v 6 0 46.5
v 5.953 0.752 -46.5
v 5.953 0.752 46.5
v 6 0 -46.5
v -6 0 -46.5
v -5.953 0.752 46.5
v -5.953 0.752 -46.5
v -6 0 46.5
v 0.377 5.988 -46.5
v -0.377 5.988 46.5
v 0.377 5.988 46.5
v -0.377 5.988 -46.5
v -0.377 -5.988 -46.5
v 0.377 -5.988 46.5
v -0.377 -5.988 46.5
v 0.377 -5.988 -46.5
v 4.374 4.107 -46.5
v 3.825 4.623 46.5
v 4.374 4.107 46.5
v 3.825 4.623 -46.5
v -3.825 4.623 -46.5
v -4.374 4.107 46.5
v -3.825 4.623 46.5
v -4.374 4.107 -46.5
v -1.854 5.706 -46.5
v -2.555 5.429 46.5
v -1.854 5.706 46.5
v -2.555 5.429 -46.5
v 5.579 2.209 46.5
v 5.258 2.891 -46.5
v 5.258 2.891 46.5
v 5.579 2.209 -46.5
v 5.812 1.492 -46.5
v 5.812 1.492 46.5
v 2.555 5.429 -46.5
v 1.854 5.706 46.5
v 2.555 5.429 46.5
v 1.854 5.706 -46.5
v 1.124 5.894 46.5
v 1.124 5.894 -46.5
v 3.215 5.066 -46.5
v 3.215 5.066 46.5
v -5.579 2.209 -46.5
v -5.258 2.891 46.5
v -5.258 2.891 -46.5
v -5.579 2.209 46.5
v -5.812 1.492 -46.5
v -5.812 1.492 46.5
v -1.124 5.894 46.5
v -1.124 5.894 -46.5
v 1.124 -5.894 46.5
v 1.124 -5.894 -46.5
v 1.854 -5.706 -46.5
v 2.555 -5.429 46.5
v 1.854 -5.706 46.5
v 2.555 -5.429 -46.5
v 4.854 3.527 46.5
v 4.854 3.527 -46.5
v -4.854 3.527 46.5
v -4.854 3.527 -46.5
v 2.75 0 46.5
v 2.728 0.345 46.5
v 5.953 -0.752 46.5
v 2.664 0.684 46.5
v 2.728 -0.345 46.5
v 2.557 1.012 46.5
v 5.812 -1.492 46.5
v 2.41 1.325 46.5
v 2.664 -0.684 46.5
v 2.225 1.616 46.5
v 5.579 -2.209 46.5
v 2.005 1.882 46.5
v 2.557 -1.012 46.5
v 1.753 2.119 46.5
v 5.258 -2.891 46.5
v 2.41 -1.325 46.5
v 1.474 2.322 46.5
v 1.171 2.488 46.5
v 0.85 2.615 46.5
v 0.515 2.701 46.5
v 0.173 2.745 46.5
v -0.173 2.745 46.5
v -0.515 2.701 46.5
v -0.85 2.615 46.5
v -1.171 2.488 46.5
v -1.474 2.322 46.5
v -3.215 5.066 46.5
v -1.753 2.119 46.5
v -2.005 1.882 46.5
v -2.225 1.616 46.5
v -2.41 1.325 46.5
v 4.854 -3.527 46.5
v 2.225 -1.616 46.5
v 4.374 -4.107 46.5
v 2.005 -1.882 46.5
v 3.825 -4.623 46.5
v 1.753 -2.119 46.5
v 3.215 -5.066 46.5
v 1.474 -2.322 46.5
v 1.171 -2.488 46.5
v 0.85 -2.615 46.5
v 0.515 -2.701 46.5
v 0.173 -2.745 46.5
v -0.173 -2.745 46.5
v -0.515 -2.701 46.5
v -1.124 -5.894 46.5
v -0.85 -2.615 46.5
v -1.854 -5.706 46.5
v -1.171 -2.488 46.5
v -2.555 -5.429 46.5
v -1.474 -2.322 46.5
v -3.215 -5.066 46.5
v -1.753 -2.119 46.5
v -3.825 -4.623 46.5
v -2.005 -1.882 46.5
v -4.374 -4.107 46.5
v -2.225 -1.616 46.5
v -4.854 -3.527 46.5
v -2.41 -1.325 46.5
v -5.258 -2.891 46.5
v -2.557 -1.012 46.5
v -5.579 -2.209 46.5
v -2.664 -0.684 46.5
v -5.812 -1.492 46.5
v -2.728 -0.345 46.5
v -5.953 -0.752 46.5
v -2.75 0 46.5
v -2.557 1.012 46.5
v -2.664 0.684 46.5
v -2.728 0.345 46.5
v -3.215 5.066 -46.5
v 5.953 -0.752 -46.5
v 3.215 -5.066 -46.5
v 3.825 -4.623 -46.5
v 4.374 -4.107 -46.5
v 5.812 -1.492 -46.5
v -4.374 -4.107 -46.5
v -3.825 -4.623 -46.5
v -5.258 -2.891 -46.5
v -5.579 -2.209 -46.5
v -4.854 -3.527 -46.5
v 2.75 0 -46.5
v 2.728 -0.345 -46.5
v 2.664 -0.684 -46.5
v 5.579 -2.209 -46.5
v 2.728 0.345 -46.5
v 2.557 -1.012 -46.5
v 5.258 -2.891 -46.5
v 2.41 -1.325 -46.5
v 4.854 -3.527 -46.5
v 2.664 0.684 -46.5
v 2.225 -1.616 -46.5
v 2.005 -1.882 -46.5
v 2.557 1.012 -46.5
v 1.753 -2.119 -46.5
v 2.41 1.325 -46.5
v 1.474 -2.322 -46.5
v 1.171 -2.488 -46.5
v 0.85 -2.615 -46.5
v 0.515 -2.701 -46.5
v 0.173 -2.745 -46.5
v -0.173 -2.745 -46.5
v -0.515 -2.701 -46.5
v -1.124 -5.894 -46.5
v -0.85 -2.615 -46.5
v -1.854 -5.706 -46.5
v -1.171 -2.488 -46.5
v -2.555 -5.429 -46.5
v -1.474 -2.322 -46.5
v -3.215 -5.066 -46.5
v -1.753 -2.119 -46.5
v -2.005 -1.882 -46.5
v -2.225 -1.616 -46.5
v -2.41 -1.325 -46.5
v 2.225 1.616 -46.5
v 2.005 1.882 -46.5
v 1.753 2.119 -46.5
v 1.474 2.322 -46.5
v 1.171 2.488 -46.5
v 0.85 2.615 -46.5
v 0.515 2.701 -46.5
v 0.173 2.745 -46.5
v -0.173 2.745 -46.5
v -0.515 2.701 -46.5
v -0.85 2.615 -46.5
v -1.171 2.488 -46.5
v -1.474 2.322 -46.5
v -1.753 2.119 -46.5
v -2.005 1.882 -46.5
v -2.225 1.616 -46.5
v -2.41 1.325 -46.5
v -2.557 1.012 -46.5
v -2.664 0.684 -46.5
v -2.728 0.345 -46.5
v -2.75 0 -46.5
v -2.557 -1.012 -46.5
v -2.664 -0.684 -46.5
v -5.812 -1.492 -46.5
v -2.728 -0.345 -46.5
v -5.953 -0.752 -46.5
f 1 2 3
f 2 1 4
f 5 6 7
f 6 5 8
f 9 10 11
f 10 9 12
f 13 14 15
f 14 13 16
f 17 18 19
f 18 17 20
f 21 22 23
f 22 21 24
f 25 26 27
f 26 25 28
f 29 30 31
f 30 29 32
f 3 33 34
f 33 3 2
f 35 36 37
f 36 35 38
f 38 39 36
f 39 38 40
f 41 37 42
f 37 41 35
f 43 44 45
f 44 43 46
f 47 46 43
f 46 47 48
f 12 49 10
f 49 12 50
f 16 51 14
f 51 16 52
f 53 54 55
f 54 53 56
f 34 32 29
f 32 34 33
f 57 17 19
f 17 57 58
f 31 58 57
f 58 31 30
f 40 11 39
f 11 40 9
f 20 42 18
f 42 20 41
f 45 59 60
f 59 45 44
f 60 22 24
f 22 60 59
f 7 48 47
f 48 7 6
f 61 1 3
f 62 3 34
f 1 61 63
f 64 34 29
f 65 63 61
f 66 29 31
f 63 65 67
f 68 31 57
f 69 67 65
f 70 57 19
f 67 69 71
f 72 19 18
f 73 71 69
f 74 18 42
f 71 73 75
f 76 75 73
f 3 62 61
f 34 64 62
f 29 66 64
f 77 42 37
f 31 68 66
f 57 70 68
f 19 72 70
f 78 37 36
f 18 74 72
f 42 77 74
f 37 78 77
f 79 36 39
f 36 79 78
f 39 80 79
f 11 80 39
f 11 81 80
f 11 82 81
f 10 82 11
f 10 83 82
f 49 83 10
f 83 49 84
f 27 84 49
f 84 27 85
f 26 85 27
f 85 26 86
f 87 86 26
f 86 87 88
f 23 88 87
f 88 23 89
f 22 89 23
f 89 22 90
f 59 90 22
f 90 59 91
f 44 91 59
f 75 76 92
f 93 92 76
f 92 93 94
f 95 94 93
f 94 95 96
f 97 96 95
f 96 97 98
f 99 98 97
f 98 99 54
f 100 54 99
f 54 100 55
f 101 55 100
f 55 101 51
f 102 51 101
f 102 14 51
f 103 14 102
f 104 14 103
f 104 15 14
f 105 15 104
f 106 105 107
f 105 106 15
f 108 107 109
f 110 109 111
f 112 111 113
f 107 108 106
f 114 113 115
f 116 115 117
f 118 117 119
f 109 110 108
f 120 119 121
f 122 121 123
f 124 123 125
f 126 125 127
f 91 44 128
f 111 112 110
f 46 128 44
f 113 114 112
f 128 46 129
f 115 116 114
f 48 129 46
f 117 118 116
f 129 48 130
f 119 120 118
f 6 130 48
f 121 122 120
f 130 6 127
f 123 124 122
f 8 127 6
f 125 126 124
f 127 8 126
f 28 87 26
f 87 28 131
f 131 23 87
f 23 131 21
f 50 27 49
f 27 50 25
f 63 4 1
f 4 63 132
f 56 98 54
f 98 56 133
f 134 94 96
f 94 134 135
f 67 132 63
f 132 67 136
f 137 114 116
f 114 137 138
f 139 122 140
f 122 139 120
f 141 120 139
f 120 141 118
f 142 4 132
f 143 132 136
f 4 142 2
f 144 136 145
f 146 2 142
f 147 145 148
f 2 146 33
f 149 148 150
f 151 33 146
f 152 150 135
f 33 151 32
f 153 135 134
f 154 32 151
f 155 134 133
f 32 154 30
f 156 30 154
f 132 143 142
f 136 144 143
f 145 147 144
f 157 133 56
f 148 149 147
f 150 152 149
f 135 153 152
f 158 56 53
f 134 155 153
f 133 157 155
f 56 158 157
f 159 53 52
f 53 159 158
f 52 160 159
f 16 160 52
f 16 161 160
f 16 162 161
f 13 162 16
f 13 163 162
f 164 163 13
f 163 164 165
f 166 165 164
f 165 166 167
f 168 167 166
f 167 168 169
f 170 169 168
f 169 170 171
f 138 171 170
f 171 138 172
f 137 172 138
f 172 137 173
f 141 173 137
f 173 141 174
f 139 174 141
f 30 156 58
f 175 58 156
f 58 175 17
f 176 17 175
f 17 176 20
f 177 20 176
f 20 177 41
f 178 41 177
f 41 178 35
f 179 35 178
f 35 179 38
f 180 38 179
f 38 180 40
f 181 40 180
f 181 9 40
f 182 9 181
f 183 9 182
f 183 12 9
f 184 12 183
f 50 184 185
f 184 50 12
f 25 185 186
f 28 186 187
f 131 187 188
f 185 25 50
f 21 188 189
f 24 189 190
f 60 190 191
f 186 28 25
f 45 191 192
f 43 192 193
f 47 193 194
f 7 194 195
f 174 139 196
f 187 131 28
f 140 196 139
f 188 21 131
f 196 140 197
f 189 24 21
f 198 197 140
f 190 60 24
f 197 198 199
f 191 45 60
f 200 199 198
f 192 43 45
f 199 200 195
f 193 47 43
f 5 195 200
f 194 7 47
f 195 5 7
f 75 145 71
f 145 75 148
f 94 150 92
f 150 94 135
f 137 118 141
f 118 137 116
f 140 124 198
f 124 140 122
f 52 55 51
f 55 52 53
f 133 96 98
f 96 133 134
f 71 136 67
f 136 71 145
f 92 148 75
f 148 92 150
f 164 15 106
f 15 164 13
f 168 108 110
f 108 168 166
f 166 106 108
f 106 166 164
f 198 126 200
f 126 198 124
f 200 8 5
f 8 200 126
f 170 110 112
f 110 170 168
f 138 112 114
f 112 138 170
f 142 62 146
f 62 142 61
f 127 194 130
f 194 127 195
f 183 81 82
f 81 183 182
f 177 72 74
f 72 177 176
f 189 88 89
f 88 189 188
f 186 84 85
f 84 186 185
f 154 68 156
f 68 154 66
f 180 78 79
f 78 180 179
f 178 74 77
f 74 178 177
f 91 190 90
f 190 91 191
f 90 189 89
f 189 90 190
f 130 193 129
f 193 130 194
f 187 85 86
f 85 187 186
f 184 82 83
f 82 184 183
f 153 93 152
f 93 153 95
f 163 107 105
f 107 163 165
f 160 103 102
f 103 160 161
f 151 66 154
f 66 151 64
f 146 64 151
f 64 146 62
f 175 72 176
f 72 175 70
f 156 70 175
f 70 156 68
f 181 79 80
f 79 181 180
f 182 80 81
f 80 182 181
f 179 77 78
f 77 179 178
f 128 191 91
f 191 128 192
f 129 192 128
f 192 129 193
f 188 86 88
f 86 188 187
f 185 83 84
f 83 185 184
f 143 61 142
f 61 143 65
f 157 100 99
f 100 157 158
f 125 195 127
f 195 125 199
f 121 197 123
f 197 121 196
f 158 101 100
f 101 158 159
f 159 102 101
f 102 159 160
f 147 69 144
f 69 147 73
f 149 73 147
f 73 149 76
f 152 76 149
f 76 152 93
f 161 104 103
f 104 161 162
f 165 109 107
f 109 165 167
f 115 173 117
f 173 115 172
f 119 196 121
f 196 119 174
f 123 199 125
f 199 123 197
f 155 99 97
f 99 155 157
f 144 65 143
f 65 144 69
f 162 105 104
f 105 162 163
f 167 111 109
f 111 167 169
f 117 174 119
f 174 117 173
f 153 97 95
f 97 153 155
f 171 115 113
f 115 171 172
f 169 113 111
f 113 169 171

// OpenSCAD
$fn = 50;


difference() {
	union() {
		translate(v = [0, 0, -46.5000000000]) {
			cylinder(h = 93, r = 6.0000000000);
		}
	}
	union() {
		translate(v = [0, 0, -100.0000000000]) {
			cylinder(h = 200, r = 2.7500000000);
		}
	}
}
